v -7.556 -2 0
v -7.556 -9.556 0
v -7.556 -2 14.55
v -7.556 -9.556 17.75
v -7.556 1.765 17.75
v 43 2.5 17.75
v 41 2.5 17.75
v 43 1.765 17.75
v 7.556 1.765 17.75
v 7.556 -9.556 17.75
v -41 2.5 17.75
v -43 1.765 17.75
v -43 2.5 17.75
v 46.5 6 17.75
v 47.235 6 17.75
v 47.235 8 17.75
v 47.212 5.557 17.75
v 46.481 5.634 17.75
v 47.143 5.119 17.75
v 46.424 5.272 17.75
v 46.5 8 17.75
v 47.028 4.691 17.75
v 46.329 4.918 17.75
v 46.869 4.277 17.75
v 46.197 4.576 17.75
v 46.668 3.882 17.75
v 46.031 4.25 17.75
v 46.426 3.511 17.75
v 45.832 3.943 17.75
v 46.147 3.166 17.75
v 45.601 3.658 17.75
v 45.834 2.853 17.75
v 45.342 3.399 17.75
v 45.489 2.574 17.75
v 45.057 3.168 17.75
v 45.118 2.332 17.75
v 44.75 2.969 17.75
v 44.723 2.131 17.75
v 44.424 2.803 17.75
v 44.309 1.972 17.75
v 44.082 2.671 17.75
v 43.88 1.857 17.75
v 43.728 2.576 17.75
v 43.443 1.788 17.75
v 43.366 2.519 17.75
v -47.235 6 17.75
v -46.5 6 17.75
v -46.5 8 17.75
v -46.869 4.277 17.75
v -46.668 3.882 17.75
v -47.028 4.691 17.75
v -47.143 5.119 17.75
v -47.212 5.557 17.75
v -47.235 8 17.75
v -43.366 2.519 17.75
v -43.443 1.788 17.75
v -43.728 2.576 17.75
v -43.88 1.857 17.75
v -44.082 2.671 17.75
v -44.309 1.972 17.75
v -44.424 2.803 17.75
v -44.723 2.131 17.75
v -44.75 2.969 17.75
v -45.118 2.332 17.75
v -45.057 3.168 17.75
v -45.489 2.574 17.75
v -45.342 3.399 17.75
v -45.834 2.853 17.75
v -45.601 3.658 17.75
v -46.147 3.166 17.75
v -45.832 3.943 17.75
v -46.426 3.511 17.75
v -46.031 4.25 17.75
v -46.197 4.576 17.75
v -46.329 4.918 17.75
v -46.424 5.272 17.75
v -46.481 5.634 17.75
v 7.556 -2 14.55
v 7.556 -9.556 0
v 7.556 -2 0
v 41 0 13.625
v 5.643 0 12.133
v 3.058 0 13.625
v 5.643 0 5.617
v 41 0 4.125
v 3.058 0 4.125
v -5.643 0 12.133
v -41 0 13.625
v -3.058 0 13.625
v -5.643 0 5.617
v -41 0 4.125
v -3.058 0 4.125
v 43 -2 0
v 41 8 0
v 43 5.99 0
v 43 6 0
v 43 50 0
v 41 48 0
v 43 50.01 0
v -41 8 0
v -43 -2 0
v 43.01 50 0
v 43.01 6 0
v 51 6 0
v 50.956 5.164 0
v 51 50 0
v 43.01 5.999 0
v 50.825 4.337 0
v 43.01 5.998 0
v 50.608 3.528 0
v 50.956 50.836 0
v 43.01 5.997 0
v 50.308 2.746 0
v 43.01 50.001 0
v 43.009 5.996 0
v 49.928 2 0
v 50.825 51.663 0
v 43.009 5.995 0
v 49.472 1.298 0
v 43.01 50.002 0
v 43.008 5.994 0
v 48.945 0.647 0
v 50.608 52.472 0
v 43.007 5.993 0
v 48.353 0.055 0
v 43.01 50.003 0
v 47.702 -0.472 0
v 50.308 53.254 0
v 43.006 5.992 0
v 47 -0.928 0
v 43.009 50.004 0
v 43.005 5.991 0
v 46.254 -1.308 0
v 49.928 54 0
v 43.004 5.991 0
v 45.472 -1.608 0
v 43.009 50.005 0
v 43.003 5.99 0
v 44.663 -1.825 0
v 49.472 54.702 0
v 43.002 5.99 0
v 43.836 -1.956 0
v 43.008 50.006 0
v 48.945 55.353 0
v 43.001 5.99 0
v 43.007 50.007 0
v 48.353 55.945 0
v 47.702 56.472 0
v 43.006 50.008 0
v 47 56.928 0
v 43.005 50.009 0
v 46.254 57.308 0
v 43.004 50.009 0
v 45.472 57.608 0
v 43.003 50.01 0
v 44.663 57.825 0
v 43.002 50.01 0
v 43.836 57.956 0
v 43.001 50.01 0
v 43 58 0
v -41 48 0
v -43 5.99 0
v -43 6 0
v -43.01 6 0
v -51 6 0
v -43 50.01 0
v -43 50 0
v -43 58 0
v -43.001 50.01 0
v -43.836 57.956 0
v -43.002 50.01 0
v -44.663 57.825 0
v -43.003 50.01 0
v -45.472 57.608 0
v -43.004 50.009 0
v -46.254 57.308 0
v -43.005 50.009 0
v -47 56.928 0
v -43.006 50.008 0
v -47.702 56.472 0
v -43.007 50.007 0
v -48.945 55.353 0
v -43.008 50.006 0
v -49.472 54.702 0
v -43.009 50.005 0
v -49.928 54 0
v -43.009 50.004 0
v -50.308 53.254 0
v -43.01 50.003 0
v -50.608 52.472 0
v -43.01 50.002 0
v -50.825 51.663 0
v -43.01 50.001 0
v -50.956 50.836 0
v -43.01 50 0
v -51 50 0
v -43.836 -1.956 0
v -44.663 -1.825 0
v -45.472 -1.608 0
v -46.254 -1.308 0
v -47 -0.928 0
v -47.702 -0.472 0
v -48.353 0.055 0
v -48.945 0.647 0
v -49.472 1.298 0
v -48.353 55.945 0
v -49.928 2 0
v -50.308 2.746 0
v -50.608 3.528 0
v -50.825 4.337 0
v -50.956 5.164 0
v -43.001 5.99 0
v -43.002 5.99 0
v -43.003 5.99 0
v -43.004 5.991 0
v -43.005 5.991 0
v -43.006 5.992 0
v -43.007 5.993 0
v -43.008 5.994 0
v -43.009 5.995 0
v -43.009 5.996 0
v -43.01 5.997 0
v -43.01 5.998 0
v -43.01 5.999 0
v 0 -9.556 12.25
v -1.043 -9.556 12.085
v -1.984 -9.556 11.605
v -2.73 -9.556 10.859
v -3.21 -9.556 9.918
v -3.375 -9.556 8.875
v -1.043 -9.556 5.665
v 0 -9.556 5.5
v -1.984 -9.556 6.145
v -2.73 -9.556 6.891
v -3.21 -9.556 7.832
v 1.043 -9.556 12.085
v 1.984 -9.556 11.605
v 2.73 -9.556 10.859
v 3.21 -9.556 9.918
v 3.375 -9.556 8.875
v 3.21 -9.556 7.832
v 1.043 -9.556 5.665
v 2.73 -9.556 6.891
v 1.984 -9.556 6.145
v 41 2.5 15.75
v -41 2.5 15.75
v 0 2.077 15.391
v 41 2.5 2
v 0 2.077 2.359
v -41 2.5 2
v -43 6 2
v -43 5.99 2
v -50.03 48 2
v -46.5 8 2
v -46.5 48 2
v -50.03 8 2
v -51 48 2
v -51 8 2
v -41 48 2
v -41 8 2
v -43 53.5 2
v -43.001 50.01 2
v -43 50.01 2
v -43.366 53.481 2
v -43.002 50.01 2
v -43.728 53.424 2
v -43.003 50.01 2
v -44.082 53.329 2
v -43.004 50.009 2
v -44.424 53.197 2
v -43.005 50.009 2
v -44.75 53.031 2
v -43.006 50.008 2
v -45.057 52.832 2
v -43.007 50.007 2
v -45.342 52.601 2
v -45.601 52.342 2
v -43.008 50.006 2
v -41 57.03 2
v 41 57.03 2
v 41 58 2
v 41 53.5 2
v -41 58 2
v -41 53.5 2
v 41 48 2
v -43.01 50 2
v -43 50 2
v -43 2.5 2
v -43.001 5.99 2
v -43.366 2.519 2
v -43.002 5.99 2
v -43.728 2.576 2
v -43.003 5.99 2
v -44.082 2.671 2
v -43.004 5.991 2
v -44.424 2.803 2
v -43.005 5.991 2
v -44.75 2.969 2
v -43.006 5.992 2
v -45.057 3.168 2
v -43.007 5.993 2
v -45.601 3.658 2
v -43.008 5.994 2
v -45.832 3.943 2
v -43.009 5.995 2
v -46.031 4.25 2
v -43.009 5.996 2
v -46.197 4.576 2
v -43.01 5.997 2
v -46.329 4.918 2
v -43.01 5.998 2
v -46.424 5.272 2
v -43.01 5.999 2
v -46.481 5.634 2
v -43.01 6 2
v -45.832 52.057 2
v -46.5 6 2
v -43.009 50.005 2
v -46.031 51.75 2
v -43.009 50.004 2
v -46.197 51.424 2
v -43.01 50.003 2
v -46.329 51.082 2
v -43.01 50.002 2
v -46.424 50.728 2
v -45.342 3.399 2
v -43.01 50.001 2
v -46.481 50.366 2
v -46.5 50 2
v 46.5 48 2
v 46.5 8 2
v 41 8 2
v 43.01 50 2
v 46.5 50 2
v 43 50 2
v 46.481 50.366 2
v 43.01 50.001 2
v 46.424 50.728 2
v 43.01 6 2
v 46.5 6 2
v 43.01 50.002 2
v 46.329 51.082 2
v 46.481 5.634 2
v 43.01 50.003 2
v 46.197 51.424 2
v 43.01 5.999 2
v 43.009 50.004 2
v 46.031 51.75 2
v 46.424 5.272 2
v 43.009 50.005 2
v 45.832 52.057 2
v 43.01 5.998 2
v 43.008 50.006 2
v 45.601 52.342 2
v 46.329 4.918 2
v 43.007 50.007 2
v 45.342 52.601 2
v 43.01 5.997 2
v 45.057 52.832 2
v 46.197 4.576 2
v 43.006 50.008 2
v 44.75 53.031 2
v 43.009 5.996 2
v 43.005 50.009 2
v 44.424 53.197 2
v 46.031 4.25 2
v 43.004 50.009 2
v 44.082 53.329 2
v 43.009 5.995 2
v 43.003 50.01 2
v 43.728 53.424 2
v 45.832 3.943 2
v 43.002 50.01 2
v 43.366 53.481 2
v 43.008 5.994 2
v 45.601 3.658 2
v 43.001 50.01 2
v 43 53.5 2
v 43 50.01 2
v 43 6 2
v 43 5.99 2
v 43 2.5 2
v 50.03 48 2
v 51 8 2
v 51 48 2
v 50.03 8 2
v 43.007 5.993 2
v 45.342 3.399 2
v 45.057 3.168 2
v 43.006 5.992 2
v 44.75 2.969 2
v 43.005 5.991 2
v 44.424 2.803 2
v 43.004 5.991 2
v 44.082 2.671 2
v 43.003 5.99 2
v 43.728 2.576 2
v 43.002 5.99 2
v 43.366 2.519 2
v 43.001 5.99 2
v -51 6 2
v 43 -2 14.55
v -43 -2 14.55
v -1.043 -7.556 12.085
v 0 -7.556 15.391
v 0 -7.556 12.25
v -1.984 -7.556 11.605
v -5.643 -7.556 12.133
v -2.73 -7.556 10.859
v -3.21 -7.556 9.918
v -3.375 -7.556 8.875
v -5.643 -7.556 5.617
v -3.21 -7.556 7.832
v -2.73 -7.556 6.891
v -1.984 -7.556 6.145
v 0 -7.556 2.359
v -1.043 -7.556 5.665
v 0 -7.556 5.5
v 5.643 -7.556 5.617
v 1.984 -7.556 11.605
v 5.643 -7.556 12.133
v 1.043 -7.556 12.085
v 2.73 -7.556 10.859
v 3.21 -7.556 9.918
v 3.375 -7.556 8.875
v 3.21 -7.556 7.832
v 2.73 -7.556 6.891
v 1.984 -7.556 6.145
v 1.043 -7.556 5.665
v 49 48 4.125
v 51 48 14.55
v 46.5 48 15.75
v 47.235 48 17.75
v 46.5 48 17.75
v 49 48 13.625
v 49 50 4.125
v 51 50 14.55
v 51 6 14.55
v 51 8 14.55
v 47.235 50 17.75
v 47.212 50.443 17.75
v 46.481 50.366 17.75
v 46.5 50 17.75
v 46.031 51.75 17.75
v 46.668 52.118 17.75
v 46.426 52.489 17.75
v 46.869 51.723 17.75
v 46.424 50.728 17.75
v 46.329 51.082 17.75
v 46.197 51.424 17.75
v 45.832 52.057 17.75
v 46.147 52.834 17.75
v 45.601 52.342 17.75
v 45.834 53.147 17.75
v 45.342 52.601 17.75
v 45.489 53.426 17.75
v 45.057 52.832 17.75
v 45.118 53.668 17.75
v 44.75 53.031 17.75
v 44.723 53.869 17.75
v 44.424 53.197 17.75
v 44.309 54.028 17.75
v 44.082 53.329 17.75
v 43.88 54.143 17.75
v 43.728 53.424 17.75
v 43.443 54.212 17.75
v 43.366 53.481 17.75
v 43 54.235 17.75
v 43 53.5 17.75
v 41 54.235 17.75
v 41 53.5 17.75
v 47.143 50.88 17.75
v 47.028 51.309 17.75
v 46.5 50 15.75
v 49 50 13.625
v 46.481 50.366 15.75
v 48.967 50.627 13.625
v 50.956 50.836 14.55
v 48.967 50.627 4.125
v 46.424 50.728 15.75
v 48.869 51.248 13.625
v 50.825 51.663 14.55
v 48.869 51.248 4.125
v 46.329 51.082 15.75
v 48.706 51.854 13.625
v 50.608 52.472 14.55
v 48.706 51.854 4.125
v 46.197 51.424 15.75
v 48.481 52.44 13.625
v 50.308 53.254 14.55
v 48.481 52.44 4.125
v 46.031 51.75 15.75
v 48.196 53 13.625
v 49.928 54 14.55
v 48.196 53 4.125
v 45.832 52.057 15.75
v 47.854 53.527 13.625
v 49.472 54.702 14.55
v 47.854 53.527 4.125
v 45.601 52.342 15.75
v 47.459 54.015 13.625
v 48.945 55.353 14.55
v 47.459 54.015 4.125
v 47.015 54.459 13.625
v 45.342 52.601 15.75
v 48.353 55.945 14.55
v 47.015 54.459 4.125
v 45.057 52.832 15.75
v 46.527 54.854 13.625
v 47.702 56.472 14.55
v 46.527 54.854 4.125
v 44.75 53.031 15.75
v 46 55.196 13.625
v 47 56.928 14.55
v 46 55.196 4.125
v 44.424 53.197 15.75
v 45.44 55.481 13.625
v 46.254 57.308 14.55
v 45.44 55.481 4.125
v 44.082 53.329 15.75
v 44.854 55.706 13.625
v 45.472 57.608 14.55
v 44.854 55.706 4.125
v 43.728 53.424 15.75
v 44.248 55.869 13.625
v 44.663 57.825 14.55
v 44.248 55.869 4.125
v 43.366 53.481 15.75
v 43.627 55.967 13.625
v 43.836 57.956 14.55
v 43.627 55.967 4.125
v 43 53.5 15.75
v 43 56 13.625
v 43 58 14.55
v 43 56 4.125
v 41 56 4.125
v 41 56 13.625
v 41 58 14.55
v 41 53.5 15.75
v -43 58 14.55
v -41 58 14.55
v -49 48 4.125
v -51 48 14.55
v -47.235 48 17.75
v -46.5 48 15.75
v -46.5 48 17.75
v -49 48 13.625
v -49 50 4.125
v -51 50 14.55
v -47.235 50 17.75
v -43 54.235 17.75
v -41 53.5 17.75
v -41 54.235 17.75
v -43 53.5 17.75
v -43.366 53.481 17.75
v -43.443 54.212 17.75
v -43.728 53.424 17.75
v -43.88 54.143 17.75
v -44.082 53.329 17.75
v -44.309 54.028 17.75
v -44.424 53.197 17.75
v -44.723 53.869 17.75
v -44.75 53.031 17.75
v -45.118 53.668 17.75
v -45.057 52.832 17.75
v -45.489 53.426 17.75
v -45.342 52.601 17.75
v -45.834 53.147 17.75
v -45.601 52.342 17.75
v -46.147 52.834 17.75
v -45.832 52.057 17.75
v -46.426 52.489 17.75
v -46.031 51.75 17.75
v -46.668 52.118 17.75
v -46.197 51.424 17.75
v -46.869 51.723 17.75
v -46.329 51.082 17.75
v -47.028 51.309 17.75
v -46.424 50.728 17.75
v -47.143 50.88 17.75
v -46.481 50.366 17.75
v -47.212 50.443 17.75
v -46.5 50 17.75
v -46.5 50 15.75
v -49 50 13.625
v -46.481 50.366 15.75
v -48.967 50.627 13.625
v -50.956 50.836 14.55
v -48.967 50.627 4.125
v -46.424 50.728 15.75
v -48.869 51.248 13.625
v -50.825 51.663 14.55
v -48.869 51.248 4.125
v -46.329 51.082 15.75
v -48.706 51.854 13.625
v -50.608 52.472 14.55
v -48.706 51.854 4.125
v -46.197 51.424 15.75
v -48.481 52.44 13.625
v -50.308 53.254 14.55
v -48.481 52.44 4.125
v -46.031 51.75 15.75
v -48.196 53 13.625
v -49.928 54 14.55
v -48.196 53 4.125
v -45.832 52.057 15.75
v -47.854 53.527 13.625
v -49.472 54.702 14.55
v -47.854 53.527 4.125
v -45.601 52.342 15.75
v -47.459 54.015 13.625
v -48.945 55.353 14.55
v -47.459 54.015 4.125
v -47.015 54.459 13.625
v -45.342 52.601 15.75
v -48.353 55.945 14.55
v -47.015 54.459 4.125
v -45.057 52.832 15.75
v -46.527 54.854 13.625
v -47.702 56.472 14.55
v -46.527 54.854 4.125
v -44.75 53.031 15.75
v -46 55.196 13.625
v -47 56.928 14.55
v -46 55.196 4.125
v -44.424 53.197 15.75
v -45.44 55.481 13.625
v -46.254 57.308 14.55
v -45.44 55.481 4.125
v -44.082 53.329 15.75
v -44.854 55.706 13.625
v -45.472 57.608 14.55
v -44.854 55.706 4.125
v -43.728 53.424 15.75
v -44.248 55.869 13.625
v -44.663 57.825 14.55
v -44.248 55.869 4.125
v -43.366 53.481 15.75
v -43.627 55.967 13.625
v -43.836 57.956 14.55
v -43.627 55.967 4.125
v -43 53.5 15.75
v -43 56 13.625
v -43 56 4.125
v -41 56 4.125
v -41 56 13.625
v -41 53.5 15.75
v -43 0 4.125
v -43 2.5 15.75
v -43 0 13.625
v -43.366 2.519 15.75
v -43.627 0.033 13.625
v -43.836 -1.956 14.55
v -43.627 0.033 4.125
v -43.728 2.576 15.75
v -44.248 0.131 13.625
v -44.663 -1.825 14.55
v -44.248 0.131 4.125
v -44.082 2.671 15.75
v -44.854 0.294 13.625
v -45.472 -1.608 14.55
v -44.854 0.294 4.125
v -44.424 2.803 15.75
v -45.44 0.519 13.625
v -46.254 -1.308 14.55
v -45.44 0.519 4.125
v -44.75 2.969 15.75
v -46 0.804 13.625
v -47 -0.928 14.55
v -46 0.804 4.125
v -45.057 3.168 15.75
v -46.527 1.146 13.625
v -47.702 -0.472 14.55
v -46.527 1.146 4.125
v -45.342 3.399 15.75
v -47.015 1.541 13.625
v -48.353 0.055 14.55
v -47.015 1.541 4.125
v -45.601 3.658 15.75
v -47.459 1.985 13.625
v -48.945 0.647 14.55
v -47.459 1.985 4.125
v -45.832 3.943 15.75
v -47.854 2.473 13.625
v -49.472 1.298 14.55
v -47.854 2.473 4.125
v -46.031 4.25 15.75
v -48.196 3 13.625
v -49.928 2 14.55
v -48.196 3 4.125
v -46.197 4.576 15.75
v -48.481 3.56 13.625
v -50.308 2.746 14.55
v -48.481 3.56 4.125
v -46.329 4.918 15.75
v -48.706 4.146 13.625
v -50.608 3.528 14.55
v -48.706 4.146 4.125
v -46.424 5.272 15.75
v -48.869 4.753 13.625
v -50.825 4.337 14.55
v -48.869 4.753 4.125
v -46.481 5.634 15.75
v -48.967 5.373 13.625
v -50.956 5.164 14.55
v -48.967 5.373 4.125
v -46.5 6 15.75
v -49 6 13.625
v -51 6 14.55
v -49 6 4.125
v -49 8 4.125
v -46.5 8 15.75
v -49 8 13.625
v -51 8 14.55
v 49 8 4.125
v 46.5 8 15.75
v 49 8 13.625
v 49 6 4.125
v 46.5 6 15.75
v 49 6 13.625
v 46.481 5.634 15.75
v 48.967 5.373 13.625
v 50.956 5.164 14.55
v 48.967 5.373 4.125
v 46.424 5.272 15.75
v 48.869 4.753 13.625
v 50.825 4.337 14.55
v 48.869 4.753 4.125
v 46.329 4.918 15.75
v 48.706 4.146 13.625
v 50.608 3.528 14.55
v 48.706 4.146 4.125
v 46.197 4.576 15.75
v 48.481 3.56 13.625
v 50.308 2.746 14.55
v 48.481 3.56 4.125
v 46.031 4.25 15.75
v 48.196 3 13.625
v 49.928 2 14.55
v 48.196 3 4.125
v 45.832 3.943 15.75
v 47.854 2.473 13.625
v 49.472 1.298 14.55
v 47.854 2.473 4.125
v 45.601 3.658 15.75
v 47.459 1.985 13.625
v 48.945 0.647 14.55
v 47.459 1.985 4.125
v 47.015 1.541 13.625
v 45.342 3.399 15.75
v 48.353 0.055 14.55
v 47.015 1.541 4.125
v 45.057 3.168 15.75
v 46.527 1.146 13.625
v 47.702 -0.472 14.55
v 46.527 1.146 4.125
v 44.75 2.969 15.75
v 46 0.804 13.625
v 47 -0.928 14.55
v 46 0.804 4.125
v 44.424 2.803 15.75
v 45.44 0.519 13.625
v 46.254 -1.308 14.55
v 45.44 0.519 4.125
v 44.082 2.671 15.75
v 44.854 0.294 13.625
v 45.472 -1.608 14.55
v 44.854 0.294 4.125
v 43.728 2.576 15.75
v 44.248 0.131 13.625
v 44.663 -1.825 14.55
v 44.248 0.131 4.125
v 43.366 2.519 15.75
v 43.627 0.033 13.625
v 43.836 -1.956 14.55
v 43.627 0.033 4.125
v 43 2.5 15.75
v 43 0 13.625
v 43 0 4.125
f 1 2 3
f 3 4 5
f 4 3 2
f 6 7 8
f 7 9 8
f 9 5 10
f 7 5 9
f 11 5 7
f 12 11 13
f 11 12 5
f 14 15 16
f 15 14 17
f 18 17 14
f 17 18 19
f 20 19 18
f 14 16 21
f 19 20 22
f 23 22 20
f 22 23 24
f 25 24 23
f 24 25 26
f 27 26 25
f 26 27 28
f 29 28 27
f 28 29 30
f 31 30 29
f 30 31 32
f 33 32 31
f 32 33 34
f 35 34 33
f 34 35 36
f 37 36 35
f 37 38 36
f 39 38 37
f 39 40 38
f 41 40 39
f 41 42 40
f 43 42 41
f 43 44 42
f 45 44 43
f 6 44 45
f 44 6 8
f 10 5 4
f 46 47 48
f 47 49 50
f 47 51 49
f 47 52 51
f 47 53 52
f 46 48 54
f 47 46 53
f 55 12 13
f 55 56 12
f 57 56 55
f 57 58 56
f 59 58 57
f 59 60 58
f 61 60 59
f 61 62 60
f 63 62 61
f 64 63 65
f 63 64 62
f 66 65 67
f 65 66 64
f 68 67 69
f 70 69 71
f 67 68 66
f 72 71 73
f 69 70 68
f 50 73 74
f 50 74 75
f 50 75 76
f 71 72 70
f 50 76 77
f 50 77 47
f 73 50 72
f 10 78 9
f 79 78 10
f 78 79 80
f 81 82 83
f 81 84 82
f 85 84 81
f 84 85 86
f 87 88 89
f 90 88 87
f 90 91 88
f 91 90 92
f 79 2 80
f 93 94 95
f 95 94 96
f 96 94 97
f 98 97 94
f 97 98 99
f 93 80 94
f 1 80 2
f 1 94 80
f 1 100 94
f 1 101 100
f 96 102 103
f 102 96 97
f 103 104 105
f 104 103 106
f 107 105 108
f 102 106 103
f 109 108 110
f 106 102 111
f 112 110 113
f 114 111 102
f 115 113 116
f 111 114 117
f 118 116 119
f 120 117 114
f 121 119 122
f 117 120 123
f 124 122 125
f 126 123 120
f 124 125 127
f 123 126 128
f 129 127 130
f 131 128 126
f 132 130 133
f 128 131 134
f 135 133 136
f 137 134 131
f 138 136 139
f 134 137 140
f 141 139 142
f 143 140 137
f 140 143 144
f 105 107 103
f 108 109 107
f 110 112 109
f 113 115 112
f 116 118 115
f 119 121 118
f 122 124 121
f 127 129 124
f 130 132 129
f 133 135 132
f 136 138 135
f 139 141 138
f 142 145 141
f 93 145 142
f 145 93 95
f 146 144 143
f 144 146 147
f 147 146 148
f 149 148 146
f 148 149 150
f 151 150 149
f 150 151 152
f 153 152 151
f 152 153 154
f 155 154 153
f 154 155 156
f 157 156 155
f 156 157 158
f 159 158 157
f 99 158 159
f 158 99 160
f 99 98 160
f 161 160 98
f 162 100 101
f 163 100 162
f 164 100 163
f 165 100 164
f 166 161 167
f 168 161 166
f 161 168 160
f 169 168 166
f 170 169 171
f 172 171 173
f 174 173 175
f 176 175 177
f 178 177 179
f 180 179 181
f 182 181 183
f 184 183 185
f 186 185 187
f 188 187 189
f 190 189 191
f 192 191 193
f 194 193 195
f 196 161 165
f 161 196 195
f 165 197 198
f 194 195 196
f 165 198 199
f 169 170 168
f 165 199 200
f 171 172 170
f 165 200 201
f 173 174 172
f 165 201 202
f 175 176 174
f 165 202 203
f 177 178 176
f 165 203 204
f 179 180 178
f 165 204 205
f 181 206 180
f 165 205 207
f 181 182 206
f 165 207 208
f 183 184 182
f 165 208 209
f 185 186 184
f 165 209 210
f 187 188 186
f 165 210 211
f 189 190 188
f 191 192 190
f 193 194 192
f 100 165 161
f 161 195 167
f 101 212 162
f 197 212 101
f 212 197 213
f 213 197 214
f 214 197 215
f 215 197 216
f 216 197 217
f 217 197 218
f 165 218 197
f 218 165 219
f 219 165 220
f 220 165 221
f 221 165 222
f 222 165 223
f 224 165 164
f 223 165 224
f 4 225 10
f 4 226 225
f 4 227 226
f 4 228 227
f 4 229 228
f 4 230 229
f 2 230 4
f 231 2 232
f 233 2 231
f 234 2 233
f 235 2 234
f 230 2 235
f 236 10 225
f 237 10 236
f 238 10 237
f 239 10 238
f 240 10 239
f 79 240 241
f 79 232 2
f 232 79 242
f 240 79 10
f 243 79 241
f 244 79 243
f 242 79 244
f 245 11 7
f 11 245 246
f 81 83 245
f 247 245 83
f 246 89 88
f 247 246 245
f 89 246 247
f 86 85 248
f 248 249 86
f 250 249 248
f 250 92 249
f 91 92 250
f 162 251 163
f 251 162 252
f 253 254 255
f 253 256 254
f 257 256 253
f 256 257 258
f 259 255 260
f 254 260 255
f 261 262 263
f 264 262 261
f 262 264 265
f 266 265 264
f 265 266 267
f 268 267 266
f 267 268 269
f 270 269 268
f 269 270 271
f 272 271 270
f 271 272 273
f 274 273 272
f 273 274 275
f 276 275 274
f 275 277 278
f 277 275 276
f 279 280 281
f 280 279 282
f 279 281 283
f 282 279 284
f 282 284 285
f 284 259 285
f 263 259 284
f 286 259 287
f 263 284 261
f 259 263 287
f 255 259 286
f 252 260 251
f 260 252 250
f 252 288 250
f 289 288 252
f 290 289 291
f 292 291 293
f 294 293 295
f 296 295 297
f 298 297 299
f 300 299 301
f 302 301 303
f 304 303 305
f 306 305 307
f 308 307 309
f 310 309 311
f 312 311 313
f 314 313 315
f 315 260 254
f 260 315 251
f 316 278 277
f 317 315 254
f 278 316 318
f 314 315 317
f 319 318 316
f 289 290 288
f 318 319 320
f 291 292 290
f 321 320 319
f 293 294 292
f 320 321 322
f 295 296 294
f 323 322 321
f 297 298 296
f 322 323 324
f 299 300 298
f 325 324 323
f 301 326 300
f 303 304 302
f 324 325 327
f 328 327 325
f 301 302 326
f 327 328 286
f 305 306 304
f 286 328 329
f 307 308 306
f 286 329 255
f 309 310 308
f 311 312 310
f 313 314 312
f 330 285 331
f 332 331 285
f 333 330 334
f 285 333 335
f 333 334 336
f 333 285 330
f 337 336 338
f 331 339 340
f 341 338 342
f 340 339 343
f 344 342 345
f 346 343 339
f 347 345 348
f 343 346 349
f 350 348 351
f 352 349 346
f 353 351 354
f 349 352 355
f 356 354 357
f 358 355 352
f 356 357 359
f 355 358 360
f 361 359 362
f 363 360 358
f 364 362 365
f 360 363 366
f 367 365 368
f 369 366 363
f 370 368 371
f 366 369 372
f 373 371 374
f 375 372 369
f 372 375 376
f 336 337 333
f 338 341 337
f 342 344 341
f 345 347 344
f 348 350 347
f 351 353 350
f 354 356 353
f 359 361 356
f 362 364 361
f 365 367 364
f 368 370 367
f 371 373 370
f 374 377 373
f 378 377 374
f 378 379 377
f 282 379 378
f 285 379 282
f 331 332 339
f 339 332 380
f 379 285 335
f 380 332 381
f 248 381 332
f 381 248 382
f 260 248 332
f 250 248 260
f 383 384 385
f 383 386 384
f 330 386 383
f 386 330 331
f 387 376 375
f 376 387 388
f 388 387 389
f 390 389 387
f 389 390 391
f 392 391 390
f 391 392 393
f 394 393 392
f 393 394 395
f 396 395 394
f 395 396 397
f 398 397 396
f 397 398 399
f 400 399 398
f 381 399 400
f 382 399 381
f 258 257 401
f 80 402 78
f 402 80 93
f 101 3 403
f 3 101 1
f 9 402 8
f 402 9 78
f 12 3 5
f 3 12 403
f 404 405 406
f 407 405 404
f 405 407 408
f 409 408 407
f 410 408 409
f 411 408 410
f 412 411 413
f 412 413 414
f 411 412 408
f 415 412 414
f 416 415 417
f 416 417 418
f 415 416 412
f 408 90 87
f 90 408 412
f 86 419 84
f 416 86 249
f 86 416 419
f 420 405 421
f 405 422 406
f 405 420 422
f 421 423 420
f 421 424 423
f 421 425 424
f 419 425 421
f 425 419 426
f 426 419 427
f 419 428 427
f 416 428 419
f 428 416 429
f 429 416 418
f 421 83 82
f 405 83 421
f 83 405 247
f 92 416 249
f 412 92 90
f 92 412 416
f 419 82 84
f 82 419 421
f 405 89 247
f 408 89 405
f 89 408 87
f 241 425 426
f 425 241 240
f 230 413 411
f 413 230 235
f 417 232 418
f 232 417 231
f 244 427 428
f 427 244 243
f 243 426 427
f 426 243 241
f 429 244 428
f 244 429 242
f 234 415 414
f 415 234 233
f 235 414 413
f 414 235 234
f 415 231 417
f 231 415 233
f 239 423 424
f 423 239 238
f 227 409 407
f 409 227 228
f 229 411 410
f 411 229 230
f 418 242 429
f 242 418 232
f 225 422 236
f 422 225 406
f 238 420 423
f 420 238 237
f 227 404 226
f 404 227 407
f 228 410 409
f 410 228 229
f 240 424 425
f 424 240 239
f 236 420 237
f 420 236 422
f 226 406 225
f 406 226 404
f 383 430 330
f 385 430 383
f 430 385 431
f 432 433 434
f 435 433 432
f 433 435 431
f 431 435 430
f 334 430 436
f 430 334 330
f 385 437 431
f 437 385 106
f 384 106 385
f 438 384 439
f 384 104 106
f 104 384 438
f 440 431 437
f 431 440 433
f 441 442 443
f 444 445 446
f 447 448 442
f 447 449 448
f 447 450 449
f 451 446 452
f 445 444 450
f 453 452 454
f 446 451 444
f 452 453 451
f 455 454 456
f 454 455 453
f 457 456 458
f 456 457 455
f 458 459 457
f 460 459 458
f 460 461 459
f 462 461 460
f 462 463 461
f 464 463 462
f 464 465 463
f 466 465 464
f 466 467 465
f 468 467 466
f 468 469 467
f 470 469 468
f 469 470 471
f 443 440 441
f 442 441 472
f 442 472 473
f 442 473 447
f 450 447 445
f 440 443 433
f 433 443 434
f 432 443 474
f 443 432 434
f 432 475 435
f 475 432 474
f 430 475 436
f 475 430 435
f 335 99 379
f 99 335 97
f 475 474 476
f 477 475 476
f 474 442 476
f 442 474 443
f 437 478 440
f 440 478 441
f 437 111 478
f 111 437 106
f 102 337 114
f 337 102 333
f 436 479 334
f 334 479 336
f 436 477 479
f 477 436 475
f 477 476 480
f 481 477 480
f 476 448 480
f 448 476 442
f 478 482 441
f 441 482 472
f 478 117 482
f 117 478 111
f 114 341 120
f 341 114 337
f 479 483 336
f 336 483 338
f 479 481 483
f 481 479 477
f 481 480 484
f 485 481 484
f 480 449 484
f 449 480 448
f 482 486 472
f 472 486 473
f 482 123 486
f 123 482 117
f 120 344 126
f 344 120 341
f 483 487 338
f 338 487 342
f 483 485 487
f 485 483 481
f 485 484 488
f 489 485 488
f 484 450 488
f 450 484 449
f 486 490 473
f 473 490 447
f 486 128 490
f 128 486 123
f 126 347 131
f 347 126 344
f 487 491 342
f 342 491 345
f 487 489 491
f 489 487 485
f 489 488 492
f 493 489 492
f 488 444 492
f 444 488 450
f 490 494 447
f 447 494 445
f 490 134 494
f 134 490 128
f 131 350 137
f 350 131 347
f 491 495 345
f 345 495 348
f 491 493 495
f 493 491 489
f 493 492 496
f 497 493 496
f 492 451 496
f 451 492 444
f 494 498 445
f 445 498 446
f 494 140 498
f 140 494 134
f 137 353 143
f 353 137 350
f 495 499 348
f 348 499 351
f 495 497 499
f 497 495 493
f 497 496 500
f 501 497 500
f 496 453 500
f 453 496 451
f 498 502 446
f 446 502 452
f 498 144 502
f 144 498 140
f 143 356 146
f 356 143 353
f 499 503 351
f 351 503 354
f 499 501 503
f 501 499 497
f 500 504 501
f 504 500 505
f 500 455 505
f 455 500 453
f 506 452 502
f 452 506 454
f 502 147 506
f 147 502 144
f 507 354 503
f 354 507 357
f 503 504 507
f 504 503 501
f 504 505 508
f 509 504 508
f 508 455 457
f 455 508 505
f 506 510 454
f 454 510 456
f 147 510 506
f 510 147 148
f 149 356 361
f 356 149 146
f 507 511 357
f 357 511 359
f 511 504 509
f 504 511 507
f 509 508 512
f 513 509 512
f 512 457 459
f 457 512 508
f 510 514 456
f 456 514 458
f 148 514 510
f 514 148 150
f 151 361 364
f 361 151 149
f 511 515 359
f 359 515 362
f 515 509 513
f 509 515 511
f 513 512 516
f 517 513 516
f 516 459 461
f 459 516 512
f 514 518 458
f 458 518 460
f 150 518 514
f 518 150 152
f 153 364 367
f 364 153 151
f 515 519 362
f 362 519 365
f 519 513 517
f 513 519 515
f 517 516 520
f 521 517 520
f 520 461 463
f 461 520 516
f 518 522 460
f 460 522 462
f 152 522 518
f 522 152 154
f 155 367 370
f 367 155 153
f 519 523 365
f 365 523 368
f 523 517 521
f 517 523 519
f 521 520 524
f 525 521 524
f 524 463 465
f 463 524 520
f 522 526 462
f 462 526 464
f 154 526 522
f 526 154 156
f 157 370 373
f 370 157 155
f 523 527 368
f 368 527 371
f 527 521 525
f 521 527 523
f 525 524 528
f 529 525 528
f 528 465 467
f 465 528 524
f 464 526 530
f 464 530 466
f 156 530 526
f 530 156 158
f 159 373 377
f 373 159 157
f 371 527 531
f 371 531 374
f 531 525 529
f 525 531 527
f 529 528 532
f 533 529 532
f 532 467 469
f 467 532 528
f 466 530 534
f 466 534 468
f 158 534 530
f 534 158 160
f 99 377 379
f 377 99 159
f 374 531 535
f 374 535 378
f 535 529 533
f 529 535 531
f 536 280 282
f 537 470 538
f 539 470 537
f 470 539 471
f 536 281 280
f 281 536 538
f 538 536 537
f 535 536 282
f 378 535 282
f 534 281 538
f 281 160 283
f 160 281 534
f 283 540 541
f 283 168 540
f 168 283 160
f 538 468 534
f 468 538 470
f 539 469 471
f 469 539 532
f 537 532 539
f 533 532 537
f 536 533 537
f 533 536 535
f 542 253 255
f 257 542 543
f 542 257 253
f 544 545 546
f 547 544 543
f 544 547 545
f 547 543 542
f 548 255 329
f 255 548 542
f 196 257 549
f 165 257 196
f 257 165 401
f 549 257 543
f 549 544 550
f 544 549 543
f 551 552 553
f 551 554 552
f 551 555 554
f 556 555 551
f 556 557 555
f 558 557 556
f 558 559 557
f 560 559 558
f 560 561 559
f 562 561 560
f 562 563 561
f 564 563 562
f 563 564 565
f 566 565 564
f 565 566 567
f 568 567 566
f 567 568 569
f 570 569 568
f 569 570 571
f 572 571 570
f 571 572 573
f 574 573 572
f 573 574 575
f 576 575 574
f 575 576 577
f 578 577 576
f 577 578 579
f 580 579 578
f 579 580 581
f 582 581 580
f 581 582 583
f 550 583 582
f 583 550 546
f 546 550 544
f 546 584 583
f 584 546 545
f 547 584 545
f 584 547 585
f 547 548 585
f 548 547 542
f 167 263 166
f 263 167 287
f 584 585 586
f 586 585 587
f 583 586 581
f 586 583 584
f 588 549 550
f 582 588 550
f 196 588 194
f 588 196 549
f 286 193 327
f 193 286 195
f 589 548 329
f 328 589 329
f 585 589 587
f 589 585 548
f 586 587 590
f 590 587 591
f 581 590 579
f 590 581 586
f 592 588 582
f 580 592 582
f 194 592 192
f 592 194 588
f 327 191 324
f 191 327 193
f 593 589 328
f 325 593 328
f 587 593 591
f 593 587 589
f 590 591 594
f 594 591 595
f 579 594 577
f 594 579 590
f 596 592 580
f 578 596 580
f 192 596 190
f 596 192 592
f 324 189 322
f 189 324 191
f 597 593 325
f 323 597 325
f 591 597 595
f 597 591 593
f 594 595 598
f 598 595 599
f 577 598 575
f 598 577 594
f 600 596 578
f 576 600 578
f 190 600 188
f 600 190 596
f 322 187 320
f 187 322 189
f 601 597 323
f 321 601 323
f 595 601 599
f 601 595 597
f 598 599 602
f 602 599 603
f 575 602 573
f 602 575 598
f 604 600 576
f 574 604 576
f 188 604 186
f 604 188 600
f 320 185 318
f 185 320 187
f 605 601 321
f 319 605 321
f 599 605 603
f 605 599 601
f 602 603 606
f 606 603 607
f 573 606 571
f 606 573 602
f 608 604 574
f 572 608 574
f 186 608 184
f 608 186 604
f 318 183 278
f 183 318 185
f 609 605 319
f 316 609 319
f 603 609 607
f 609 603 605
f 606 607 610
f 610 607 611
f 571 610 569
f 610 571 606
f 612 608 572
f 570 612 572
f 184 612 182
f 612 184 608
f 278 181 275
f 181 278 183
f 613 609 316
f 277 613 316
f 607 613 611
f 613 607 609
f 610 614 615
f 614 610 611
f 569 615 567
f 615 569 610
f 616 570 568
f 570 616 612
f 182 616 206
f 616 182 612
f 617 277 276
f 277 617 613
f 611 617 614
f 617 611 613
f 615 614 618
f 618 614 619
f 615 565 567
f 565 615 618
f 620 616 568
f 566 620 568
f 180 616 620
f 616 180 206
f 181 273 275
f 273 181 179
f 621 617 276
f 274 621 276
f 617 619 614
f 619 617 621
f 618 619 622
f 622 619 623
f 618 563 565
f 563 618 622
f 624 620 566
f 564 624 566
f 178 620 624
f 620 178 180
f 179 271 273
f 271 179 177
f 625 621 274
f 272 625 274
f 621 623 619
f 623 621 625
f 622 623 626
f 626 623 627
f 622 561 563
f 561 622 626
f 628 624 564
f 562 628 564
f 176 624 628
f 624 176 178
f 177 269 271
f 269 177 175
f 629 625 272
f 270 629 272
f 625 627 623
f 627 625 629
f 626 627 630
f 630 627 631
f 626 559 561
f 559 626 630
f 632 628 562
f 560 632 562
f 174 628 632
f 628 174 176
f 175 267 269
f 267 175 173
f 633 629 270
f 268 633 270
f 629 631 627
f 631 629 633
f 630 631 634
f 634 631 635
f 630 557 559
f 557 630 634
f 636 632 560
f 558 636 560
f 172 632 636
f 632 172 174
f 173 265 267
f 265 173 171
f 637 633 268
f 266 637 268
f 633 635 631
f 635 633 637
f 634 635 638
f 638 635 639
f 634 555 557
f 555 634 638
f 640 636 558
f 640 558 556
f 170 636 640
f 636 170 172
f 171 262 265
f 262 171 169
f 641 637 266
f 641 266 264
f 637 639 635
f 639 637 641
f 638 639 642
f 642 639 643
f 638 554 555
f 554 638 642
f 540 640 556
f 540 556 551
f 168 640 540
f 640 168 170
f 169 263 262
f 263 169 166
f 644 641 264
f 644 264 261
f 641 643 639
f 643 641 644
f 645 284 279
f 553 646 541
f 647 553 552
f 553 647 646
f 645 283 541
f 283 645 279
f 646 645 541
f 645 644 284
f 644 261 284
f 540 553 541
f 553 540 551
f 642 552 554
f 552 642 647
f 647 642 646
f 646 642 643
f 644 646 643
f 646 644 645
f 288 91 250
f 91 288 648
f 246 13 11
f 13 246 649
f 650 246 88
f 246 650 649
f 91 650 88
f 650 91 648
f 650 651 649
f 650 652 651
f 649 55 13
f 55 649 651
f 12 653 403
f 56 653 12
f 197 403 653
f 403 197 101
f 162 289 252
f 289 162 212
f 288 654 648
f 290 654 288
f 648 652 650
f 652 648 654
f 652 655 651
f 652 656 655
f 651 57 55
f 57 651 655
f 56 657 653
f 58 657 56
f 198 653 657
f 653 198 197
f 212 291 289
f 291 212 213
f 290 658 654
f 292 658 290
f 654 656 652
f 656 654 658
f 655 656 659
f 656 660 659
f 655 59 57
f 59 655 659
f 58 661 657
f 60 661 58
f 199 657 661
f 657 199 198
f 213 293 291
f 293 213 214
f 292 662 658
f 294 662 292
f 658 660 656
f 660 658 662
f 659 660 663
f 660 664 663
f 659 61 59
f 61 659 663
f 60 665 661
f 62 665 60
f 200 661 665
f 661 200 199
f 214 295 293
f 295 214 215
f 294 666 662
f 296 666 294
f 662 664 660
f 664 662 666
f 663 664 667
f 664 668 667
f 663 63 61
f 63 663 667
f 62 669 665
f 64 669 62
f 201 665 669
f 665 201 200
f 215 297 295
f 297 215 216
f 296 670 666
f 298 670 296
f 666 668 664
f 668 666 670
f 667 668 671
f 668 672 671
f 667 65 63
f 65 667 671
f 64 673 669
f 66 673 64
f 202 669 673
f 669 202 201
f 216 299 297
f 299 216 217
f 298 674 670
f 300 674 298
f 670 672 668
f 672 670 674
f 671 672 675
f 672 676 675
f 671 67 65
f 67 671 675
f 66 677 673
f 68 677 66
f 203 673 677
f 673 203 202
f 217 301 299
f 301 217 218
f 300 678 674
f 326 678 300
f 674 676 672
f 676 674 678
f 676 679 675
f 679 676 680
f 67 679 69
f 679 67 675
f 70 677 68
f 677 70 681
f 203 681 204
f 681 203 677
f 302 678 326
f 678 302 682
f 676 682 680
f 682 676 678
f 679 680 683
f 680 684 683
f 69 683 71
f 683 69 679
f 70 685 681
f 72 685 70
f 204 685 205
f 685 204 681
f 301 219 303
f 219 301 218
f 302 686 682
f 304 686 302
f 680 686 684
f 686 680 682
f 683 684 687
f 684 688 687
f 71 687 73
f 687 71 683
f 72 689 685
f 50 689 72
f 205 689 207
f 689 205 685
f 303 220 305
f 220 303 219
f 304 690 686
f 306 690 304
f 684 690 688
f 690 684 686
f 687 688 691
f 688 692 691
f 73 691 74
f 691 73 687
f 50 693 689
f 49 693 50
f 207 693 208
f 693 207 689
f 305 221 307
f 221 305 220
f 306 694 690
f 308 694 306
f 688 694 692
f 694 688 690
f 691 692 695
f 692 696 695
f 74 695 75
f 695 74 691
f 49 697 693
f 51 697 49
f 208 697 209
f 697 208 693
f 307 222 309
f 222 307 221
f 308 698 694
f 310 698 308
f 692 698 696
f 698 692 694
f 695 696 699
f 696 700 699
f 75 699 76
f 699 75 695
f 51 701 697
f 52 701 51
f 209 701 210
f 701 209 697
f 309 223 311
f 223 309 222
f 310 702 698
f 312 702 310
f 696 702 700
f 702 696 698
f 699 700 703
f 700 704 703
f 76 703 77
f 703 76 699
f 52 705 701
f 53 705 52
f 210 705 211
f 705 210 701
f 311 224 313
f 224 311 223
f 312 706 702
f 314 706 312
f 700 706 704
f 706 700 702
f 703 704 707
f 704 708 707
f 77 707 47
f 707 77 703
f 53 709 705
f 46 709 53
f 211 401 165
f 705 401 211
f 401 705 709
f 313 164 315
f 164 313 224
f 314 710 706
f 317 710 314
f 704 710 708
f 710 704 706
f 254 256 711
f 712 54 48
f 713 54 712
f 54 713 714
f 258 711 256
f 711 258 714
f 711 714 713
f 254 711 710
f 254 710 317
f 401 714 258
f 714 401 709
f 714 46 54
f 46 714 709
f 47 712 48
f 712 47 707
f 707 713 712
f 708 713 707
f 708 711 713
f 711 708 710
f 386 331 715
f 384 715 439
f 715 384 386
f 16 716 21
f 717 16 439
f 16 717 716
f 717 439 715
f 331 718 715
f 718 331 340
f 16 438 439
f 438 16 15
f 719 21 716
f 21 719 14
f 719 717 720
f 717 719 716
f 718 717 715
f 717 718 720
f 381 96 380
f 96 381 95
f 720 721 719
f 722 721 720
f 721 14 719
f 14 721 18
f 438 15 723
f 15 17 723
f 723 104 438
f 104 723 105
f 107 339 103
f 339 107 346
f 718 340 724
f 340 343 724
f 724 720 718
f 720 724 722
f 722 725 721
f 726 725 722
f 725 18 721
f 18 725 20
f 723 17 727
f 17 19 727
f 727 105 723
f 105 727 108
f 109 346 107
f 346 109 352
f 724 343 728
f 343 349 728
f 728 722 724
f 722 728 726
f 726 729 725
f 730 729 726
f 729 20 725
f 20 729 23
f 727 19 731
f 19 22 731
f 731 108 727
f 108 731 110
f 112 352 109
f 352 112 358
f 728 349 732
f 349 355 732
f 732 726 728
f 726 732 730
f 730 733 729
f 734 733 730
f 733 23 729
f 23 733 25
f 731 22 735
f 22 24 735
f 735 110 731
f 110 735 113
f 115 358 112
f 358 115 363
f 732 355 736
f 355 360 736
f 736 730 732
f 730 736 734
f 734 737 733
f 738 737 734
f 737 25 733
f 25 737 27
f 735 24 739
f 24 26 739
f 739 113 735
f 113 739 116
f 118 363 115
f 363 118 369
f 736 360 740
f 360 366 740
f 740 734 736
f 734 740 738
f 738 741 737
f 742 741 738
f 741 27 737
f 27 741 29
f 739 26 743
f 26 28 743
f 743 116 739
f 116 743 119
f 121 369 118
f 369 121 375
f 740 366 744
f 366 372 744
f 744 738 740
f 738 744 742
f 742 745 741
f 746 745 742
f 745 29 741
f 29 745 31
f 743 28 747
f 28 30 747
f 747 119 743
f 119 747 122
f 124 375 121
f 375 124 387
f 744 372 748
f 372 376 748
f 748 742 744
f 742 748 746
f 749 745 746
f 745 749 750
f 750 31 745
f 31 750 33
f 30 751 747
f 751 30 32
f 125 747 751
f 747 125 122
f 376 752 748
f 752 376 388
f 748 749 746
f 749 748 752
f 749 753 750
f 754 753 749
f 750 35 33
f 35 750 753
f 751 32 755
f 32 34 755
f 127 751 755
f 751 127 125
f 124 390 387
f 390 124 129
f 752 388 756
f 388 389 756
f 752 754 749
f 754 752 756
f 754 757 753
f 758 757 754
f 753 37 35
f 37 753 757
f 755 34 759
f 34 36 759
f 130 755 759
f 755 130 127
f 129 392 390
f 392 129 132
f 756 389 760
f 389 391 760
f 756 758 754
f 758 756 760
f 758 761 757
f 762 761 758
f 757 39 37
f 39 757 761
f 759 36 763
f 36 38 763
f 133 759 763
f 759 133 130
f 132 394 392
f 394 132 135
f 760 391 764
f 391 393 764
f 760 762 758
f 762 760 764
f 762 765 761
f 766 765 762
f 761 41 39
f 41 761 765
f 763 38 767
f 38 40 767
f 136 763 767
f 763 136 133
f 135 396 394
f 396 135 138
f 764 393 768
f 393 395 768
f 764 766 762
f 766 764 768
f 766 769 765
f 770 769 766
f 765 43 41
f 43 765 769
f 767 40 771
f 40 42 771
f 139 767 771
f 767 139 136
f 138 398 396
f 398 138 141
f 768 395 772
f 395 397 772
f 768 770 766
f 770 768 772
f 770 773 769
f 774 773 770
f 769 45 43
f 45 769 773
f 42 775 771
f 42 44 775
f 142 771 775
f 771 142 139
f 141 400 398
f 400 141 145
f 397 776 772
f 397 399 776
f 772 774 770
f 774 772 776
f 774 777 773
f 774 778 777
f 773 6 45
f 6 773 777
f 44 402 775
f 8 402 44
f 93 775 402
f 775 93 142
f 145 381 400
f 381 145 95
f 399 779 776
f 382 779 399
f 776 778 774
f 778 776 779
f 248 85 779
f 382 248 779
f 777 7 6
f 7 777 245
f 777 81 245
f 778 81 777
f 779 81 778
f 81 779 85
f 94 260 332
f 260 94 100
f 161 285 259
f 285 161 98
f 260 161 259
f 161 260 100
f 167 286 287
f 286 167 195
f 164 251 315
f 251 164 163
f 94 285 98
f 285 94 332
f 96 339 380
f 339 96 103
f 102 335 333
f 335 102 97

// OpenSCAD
eps = 0.01;
thickness = 2;

inner_width = 98;
inner_length = 56;
inner_width_with_bevel = 93;
bevel_width = (inner_width - inner_width_with_bevel)/2;

inner_height = 13.75;
inner_outset_height = 9.5;
bevel_height = (inner_height - inner_outset_height)/2;
outer_height = inner_height + thickness*2;

corner_inner_radius = 6;
corner_inner_bevel_radius = (corner_inner_radius - bevel_width);
corner_outer_radius = corner_inner_radius + thickness;

corner_overhang = 2;

bolt_hole_radius = 1/4 * 25.4 / 2;
nut_flats_width = 7/16 * 25.4;
nut_corners_width = nut_flats_width/cos(180/6);
nut_height = 7/32 * 25.4;
nut_slop = 0.2;

nut_holder_width = nut_flats_width + thickness * 2;
nut_holder_length = thickness + nut_height + thickness;
nut_holder_height = outer_height;

connecting_beam_width = corner_outer_radius + corner_overhang;

module beveled_profile(bevel_top_corner=true, bevel_bottom_corner=true) {
    start_points = bevel_bottom_corner ? [
            [0, 0],
            [corner_inner_bevel_radius, 0],
            [corner_inner_radius, bevel_height],
        ] : [
            [0, 0],
            [corner_inner_radius, 0],
        ];
    end_points = bevel_top_corner ? [
        [corner_inner_radius, inner_height - bevel_height],
        [corner_inner_bevel_radius, inner_height],
        [0, inner_height],
    ] : [
        [corner_inner_radius, inner_height],
        [0, inner_height],
    ];

    points = concat(start_points, end_points);
    polygon(points=points);
}

module beveled_profile_holder() {
    translate([0, thickness]) {
        difference() {
            offset(delta=thickness) {
                beveled_profile(bevel_bottom_corner=false);
            }
            beveled_profile();
            translate([-thickness, -thickness-eps]) {
                square([thickness+eps, outer_height+2*eps]);
            }
            translate([0, inner_height]) {
                square([corner_inner_bevel_radius, thickness+2*eps]);
            }
        }
    }
}

module corner() {
    union() {
        rotate([90, 0, 0]) {
            linear_extrude(height=corner_overhang) {
                beveled_profile_holder();
            }
        }
        rotate_extrude(angle=90, $fn=60) {
                beveled_profile_holder();
        }
        translate([-corner_overhang, 0, 0]) {
            rotate([90, 0, 90]) {
                linear_extrude(height=corner_overhang) {
                    beveled_profile_holder();
                }
            }
        }
    }
}

module beveled_profile_sturdy(wall_thickness) {
    points = [
        [0, 0],
        [0, thickness],
        [bevel_width, thickness + bevel_height],
        [bevel_width, thickness + inner_height - bevel_height],
        [0, thickness + inner_height],
        [0, thickness + inner_height + thickness],
        [bevel_width + wall_thickness, thickness + inner_height + thickness],
        [bevel_width + wall_thickness, 0],
    ];
    polygon(points=points);
}

module nut_holder() {
    translate([0, -nut_holder_length, 0]) {
        difference() {
            union() {
                translate([-nut_holder_width/2, 0, 0]) {
                    cube([nut_holder_width, nut_holder_length, nut_holder_height]);
                }

                translate([nut_holder_width/2, nut_holder_length + bevel_width, 0]) {
                    rotate([90, 0, -90]) {
                        linear_extrude(height=nut_holder_width) {
                            beveled_profile_sturdy(thickness);
                        }
                    }
                }

                translate([inner_width/2 - corner_inner_radius, nut_holder_length + corner_inner_radius, 0]) {
                    rotate([90, 0, -90]) {
                        linear_extrude(height=inner_width - 2*corner_inner_radius) {
                            beveled_profile_holder();
                        }
                    }
                }

            }

            // 1/4-20 nut
            translate([0, nut_holder_length - nut_height - thickness, nut_holder_height/2]) {
                rotate([-90, 90, 0]) {
                    linear_extrude(height=nut_height + thickness + bevel_width + eps) {
                        circle(d=nut_corners_width + nut_slop, $fn=6);
                    }
                }
            }
            // 1/4" bolt hole
            translate([0, -eps, nut_holder_height/2]) {
                rotate([-90, 0, 0]) {
                    cylinder(h=thickness+2*eps, r=bolt_hole_radius + nut_slop, $fn=20);
                }
            }
        }
    }
}


module dso_quad_mount() {
    union() {
        nut_holder();

        // Upper right
        translate([inner_width/2 - corner_inner_radius, inner_length - corner_inner_radius, 0]) {
            corner();
        }
        // Upper left
        translate([-inner_width/2 + corner_inner_radius, inner_length - corner_inner_radius, 0]) {
            mirror([1, 0, 0]) {
                corner();
            }
        }
        // Lower left
        translate([-inner_width/2 + corner_inner_radius, corner_inner_radius, 0]) {
            mirror([1, 1, 0]) {
                corner();
            }
        }
        // Lower right
        translate([inner_width/2 - corner_inner_radius, corner_inner_radius, 0]) {
            mirror([0, 1, 0]) {
                corner();
            }
        }

        // Connecting beams
        translate([-inner_width/2 + corner_inner_radius, -thickness, 0]) {
            cube([inner_width - corner_inner_radius * 2, connecting_beam_width, thickness]);
        }
        translate([-inner_width/2 + corner_inner_radius, inner_length + thickness - connecting_beam_width, 0]) {
            cube([inner_width - corner_inner_radius * 2, connecting_beam_width, thickness]);
        }
        translate([-inner_width/2 - thickness, corner_inner_radius, 0]) {
            cube([connecting_beam_width, inner_length - corner_inner_radius * 2, thickness]);
        }
        translate([inner_width/2 + thickness - connecting_beam_width, corner_inner_radius, 0]) {
            cube([connecting_beam_width, inner_length - corner_inner_radius * 2, thickness]);
        }
    }
}

dso_quad_mount();

%translate([-inner_width/2, 0, 0]) {
    cube([inner_width, inner_length, inner_height]);
}
